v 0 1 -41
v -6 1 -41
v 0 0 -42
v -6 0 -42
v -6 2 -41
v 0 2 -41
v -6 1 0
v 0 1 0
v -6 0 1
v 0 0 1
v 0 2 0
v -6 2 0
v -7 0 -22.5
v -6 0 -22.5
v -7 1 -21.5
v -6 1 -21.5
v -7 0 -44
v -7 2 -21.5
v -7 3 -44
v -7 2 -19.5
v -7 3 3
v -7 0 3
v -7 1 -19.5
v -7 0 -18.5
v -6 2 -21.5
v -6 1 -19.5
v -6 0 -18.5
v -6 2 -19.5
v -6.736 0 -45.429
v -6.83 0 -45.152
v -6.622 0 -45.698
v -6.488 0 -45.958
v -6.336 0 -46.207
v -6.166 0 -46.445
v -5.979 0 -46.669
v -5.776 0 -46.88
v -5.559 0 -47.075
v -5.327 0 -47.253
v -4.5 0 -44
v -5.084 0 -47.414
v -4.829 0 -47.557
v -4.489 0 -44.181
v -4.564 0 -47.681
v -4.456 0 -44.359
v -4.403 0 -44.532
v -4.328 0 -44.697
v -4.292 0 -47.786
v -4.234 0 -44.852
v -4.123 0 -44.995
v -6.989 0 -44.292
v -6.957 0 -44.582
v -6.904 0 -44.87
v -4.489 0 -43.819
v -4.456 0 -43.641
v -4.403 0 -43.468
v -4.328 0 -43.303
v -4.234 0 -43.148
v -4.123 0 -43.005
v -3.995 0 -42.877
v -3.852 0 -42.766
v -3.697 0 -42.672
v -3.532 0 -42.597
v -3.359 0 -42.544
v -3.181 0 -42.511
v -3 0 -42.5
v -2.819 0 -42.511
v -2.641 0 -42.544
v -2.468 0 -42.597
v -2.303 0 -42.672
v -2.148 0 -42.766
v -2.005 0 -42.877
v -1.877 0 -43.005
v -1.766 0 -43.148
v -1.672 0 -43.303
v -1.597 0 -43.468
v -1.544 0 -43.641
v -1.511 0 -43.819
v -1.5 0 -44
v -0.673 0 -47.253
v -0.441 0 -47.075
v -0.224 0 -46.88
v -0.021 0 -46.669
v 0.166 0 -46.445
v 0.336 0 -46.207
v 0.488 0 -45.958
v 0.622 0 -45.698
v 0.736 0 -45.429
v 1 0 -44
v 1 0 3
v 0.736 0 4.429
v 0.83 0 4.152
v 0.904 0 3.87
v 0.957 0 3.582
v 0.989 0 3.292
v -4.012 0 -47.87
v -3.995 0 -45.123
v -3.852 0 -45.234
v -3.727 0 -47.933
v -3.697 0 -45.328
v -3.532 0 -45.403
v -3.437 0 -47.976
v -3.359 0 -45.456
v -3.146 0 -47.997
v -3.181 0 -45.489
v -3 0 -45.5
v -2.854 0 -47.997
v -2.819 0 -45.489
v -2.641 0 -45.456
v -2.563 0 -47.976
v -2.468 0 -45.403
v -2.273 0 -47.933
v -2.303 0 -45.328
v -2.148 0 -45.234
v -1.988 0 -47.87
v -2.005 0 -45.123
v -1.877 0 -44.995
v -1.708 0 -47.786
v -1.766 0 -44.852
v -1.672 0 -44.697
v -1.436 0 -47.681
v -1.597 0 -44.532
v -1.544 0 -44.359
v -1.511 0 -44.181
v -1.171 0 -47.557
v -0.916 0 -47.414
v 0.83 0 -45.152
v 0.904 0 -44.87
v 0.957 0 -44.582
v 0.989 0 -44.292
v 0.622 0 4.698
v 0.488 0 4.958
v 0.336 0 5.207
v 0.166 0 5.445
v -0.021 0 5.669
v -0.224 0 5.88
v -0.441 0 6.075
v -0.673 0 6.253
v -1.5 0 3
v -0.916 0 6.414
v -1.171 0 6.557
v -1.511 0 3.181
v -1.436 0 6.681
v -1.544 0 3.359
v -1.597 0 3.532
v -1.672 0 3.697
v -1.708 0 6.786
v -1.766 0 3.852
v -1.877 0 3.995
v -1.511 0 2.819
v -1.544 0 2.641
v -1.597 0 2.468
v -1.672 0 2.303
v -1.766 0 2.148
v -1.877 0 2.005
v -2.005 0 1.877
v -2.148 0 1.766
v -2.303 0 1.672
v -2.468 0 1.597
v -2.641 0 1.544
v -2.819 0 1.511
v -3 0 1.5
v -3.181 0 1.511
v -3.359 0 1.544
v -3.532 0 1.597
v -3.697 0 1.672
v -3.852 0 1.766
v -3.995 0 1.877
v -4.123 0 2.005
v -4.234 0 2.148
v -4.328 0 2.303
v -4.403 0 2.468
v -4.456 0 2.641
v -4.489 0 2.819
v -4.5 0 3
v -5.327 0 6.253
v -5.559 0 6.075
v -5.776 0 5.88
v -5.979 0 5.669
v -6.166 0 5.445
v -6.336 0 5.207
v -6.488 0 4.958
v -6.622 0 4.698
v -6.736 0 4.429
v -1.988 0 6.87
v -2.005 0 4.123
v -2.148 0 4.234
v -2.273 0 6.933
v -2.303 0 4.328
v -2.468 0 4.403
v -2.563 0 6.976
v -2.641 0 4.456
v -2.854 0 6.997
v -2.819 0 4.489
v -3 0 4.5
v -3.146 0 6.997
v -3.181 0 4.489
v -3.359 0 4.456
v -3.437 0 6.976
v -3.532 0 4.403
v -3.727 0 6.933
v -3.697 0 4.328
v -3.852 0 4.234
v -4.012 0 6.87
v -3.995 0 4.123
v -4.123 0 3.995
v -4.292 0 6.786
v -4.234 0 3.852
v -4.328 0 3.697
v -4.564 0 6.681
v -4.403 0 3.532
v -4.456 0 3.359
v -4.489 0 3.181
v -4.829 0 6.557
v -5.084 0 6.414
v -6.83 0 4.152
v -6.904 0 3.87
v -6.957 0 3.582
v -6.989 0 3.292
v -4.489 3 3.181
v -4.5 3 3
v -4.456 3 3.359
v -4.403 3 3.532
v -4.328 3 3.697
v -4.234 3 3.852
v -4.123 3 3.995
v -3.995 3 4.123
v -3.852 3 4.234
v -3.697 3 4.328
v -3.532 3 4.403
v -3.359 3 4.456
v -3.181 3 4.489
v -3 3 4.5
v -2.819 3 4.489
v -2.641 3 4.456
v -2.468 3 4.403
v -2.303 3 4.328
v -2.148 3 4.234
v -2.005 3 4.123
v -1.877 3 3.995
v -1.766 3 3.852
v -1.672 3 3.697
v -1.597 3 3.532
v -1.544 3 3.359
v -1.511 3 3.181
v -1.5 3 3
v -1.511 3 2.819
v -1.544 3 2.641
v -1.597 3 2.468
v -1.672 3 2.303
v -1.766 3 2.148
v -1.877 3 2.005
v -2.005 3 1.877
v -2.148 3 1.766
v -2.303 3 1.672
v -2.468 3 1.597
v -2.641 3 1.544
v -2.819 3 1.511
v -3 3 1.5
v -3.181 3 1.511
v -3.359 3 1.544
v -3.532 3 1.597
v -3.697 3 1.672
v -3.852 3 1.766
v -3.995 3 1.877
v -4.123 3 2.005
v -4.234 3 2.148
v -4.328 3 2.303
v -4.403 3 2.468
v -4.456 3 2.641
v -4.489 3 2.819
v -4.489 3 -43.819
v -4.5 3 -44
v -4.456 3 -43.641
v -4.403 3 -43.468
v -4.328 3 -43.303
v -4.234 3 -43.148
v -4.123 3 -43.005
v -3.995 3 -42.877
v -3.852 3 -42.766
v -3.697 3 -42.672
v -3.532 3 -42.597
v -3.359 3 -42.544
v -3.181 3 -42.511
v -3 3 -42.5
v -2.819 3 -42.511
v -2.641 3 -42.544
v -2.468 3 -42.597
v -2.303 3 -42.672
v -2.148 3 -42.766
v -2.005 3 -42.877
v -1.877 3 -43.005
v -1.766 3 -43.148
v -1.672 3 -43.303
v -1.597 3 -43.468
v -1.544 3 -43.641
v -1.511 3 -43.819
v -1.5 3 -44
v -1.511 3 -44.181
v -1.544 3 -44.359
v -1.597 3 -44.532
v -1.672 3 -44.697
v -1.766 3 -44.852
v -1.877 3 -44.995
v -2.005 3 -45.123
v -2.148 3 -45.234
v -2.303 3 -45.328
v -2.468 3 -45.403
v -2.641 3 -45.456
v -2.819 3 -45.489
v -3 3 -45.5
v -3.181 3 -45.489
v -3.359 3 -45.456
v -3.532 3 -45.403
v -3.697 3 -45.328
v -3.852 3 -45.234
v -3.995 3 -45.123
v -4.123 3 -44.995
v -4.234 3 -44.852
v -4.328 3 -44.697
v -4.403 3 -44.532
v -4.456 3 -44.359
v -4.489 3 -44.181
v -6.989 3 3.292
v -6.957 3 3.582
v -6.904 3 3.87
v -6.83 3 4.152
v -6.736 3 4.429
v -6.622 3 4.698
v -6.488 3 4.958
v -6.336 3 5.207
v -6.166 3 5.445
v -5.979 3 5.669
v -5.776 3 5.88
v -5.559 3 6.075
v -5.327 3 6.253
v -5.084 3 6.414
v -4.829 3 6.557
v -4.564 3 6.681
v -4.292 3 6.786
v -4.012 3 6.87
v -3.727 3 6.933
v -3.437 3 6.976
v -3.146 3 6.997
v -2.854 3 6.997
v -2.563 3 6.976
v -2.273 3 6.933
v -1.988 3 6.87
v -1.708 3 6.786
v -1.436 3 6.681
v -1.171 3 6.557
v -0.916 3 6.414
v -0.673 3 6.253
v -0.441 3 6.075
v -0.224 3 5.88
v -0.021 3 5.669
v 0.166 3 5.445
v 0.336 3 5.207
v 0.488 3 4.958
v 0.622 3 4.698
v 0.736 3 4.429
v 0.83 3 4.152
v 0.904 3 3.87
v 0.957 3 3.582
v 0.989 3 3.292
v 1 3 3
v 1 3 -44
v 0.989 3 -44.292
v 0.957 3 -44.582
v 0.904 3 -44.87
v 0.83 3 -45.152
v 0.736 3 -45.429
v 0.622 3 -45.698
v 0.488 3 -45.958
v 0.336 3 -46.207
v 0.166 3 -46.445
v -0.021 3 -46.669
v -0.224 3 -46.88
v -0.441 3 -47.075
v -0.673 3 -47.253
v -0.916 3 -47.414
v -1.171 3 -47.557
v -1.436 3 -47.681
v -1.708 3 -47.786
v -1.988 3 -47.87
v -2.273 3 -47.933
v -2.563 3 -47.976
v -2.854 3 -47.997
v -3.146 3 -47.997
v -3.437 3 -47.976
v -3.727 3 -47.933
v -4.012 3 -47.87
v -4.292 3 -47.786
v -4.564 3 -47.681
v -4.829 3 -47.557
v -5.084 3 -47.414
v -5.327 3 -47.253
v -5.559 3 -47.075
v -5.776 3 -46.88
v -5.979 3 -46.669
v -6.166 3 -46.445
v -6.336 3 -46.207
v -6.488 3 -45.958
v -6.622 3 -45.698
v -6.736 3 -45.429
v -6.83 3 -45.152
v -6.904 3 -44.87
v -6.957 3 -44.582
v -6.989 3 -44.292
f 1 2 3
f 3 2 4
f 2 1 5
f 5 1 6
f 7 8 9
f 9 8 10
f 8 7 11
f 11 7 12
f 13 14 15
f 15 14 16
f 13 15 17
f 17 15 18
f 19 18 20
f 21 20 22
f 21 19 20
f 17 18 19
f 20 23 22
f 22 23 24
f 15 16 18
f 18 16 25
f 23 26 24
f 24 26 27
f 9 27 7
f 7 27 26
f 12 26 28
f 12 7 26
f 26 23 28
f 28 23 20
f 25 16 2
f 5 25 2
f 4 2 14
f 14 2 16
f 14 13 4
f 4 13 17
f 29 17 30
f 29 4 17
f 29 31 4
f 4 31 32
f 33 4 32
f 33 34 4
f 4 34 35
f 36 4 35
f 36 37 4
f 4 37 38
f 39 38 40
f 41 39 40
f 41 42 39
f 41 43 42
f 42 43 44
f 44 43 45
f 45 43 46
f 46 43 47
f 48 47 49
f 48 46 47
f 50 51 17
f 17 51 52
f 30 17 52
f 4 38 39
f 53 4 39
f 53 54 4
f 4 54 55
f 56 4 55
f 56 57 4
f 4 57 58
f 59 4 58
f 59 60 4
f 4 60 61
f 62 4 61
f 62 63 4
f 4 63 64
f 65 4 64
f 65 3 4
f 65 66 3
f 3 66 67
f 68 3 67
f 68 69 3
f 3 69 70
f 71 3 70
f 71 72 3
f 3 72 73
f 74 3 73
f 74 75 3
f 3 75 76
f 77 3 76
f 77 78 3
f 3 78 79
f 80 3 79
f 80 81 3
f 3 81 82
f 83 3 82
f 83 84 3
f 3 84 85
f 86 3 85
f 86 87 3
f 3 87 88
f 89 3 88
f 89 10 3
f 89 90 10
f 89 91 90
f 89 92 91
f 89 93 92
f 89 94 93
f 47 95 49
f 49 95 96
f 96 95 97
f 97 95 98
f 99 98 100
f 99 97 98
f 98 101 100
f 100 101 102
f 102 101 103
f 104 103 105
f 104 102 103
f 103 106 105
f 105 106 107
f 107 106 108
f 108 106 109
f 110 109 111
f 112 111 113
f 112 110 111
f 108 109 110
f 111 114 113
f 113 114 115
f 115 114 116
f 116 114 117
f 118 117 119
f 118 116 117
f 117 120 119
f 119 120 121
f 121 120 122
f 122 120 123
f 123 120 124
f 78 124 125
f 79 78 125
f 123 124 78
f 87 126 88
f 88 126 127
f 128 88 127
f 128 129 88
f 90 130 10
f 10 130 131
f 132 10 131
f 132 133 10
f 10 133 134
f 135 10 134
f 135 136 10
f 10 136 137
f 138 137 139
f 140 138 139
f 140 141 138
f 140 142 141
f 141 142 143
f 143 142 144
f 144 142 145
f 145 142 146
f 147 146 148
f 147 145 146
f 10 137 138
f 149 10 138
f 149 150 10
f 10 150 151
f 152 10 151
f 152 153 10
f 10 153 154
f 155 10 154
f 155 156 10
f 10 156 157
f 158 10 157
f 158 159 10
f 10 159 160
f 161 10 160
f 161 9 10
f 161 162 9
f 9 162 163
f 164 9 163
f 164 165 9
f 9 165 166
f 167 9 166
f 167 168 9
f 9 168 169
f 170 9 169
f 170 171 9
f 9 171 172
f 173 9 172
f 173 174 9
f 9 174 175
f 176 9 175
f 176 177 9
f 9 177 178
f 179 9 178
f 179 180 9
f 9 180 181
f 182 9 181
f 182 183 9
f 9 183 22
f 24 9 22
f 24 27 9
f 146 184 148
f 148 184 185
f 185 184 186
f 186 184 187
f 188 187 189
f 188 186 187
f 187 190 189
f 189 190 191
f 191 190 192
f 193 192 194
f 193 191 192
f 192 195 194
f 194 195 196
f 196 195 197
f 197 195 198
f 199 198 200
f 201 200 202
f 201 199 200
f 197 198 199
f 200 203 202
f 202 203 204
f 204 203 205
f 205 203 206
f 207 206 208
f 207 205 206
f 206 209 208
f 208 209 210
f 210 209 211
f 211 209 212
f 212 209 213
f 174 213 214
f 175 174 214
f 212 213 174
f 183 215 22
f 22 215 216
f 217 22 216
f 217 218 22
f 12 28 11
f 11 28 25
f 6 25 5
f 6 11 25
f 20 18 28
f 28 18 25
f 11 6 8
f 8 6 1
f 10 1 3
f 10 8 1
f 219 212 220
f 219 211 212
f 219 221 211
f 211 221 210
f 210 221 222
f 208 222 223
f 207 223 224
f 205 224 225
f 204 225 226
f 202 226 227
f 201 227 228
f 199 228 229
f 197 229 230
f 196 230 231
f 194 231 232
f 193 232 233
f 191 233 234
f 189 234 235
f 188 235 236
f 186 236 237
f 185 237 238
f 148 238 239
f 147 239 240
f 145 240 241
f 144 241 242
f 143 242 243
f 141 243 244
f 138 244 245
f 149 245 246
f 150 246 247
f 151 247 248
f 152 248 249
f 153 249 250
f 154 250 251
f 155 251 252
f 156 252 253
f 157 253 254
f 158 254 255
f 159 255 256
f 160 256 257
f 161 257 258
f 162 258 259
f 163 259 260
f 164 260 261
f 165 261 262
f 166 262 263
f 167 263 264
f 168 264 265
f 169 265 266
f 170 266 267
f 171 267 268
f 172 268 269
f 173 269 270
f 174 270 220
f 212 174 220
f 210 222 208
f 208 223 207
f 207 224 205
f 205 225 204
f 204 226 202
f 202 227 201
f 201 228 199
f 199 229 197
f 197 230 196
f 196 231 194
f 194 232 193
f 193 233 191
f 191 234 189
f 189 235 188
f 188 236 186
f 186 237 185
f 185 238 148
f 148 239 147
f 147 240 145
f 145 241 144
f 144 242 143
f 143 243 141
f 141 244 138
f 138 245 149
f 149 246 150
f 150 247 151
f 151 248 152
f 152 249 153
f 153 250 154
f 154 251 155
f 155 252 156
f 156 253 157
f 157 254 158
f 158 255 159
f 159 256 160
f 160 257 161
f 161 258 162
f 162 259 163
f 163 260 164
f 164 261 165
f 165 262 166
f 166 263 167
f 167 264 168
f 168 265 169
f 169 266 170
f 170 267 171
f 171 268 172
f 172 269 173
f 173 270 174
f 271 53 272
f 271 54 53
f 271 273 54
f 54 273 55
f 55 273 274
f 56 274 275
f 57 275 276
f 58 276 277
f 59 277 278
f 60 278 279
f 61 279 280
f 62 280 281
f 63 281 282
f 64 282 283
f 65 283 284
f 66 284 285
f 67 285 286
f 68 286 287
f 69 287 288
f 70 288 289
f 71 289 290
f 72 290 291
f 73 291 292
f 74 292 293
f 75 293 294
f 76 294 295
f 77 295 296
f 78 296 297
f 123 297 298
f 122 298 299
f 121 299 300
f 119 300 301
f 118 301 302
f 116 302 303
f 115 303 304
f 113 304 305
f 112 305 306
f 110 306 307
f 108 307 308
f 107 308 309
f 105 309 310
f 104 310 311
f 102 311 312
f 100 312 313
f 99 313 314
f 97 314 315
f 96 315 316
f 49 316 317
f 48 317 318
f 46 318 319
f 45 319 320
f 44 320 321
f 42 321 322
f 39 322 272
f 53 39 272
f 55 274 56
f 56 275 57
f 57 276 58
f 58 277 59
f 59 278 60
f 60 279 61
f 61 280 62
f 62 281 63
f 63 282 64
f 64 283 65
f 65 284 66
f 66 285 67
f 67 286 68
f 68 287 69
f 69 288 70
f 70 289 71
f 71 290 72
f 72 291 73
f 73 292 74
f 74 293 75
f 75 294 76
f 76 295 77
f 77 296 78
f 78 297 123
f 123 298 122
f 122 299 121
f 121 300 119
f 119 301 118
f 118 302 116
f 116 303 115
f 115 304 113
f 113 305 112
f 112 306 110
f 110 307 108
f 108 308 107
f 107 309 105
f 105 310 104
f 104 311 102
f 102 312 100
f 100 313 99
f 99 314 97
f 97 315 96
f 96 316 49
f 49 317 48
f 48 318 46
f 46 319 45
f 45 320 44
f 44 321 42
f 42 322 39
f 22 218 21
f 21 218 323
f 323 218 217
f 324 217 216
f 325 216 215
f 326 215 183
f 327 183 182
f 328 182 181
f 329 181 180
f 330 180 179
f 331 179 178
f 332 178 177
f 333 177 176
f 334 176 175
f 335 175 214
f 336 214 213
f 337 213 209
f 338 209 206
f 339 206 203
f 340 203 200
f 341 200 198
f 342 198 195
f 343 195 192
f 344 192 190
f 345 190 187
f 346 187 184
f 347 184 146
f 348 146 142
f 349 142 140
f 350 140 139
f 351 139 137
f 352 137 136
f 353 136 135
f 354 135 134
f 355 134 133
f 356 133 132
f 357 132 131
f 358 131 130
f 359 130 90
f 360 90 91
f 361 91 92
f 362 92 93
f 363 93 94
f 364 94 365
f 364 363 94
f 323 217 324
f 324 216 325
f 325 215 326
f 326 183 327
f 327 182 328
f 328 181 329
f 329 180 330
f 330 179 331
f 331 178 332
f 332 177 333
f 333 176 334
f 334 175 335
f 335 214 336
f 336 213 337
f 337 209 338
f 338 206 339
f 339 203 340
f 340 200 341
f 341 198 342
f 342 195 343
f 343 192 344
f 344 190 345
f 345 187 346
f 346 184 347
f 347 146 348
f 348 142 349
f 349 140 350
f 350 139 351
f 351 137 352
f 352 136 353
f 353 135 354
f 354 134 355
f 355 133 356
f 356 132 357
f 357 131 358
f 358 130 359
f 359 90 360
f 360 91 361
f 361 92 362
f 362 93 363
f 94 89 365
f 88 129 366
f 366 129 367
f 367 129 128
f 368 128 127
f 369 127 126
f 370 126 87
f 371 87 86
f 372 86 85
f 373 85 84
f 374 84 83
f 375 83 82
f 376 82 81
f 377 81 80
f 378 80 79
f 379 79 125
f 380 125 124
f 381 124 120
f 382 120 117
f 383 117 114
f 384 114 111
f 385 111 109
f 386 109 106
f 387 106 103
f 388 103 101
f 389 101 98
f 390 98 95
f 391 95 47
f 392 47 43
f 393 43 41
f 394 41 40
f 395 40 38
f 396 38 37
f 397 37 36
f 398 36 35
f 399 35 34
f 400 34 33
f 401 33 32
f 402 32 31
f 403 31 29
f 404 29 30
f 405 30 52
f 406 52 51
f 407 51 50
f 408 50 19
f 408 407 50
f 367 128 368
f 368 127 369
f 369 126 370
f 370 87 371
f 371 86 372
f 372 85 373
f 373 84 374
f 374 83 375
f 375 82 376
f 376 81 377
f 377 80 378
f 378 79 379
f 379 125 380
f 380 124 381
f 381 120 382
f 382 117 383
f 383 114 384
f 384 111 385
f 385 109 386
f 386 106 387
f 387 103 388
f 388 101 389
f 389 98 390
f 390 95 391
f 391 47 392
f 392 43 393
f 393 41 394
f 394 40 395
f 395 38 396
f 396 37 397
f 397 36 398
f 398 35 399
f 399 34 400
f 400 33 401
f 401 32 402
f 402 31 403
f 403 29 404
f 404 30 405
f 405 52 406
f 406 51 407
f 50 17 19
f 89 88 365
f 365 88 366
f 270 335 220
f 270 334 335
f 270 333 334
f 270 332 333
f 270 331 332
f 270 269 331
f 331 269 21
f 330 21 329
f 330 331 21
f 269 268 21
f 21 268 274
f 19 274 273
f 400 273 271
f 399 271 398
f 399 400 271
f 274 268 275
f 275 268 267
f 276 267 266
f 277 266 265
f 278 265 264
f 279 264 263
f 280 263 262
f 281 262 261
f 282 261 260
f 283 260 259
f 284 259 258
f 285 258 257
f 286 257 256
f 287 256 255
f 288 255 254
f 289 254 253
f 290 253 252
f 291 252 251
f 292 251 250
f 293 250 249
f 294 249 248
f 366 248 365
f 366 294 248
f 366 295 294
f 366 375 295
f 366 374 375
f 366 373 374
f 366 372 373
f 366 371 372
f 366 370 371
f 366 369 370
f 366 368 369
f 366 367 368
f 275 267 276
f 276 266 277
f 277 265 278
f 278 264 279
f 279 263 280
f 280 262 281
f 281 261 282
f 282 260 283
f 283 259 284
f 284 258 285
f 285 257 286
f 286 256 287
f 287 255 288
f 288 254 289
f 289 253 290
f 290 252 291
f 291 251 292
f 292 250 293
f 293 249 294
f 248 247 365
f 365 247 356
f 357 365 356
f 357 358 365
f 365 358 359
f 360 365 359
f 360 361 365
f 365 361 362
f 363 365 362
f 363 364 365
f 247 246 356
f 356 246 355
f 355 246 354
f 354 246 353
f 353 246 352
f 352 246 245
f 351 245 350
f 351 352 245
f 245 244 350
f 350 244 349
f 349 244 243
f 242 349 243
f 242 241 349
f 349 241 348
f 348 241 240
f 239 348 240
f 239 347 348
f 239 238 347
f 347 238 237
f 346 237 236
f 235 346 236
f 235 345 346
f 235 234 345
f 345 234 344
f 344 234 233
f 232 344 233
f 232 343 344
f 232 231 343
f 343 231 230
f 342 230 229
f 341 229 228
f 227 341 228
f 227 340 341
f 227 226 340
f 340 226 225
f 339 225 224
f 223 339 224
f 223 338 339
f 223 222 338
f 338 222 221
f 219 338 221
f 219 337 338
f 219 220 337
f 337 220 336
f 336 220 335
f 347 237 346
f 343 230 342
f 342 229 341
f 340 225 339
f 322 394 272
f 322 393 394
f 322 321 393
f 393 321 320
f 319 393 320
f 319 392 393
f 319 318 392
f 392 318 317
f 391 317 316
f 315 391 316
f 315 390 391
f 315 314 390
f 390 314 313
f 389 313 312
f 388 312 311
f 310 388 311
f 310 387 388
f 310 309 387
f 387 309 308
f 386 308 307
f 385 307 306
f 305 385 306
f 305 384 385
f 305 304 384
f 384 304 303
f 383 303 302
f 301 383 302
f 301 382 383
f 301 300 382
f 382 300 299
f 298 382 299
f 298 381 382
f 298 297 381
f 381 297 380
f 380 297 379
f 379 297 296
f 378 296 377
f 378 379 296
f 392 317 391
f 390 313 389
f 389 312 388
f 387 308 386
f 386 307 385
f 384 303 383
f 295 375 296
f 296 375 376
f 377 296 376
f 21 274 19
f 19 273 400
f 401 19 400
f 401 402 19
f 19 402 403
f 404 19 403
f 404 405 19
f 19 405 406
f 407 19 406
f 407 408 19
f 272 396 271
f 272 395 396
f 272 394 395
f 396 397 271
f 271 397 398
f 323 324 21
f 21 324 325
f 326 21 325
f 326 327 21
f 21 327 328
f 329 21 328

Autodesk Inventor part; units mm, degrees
ref_plane "YZ Plane" through (0, 0, 0) normal (1, 0, 0) x (0, 1, 0)
ref_plane "XZ Plane" through (0, 0, 0) normal (0, 1, 0) x (-1, 0, 0)
ref_plane "XY Plane" through (0, 0, 0) normal (0, 0, 1) x (1, 0, 0)
sketch "Sketch1" plane through (0, 0, 0) normal (0, 1, 0) x (-1, 0, 0)
  line L0 (0, 0) -> (6, 0)
  line L1 (6, 0) -> (6, -41)
  line L2 (6, -41) -> (0, -41)
  line L3 (0, -41) -> (0, 0)
  line L4 (7, -42) -> (7, 1)
  line L5 (7, 1) -> (-1, 1)
  line L6 (-1, 1) -> (-1, -42)
  line L7 (-1, -42) -> (7, -42)
  line L8 (3, 1) -> (3, 3)
  circle A0 centre (3, 3) radius 1.5
  arc A1 (7, 3) -> (-1, 3) centre (3, 3) ccw
  line L9 (7, 1) -> (7, 3)
  line L10 (-1, 1) -> (-1, 3)
  line L11 (3, -42) -> (3, -44)
  circle A2 centre (3, -44) radius 1.5
  arc A3 (-1, -44) -> (7, -44) centre (3, -44) ccw
  line L12 (7, -42) -> (7, -44)
  line L13 (-1, -42) -> (-1, -44)
  dimension "d19" = 2
  dimension "d0" = 6
  dimension "d1" = 41
  dimension "d2" = 1
  dimension "d3" = 2
  dimension "d4" = 3
  dimension "d5" = 8
  dimension "d6" = 2
  dimension "d7" = 3
  dimension "d8" = 8
extrude "Extrusion1" add sketch "Sketch1" along normal blind 3
sketch "Sketch2" plane through (0, 3, 0) normal (0, 1, 0) x (1, 0, 0)
  line L0 (0, 41) -> (0, 0) projected
  line L1 (-6, 0) -> (-6, 41) projected
  line L2 (0, 0) -> (-6, 0)
  line L3 (-6, 0) -> (-6, 41)
  line L4 (-6, 41) -> (0, 41)
  line L5 (0, 41) -> (0, 0)
extrude "Extrusion2" add sketch "Sketch2" against normal blind 1
sketch "Sketch3" plane through (0, 0, 0) normal (0, -1, 0) x (1, 0, 0)
  circle A0 centre (-3, 3) radius 1.5 projected
  line L0 (-6, -41) -> (-6, 0) projected
  line L1 (-6, 0) -> (0, 0) projected
  line L2 (0, 0) -> (0, -41) projected
  line L3 (0, -41) -> (-6, -41) projected
  circle A1 centre (-3, 3) radius 1.5 projected
  circle A2 centre (-3, -44) radius 1.5 projected
  line L4 (-7, -44) -> (-7, 3) projected
  arc A3 (-7, -44) -> (1, -44) centre (-3, -44) ccw projected
  line L5 (1, 3) -> (1, -44) projected
  arc A4 (1, 3) -> (-7, 3) centre (-3, 3) ccw projected
  line L6 (-7, -44) -> (-7, 3) projected
  line L7 (-7, -20.5) -> (-7, -21.5)
  line L8 (-7, -21.5) -> (-6, -21.5)
  line L9 (-6, -21.5) -> (-6, -19.5)
  line L10 (-6, -19.5) -> (-7, -19.5)
  line L11 (-7, -19.5) -> (-7, -21.5)
  dimension "d13" = 1
  dimension "d14" = 1
  dimension "d15" = 2
extrude "Extrusion3" cut sketch "Sketch3" against normal up to surface (2 mm away) contours L8 L4 L10 L0
chamfer "Chamfer1" distance 1 angle 45 2 edges at (-6.5, 0, -19.5) (-6.5, 0, -21.5)
chamfer "Chamfer2" distance 1 angle 45 2 edges at (-3, 0, 0) (-3, 0, -41)
properties part number "Beaglebone Antenna Mount"
